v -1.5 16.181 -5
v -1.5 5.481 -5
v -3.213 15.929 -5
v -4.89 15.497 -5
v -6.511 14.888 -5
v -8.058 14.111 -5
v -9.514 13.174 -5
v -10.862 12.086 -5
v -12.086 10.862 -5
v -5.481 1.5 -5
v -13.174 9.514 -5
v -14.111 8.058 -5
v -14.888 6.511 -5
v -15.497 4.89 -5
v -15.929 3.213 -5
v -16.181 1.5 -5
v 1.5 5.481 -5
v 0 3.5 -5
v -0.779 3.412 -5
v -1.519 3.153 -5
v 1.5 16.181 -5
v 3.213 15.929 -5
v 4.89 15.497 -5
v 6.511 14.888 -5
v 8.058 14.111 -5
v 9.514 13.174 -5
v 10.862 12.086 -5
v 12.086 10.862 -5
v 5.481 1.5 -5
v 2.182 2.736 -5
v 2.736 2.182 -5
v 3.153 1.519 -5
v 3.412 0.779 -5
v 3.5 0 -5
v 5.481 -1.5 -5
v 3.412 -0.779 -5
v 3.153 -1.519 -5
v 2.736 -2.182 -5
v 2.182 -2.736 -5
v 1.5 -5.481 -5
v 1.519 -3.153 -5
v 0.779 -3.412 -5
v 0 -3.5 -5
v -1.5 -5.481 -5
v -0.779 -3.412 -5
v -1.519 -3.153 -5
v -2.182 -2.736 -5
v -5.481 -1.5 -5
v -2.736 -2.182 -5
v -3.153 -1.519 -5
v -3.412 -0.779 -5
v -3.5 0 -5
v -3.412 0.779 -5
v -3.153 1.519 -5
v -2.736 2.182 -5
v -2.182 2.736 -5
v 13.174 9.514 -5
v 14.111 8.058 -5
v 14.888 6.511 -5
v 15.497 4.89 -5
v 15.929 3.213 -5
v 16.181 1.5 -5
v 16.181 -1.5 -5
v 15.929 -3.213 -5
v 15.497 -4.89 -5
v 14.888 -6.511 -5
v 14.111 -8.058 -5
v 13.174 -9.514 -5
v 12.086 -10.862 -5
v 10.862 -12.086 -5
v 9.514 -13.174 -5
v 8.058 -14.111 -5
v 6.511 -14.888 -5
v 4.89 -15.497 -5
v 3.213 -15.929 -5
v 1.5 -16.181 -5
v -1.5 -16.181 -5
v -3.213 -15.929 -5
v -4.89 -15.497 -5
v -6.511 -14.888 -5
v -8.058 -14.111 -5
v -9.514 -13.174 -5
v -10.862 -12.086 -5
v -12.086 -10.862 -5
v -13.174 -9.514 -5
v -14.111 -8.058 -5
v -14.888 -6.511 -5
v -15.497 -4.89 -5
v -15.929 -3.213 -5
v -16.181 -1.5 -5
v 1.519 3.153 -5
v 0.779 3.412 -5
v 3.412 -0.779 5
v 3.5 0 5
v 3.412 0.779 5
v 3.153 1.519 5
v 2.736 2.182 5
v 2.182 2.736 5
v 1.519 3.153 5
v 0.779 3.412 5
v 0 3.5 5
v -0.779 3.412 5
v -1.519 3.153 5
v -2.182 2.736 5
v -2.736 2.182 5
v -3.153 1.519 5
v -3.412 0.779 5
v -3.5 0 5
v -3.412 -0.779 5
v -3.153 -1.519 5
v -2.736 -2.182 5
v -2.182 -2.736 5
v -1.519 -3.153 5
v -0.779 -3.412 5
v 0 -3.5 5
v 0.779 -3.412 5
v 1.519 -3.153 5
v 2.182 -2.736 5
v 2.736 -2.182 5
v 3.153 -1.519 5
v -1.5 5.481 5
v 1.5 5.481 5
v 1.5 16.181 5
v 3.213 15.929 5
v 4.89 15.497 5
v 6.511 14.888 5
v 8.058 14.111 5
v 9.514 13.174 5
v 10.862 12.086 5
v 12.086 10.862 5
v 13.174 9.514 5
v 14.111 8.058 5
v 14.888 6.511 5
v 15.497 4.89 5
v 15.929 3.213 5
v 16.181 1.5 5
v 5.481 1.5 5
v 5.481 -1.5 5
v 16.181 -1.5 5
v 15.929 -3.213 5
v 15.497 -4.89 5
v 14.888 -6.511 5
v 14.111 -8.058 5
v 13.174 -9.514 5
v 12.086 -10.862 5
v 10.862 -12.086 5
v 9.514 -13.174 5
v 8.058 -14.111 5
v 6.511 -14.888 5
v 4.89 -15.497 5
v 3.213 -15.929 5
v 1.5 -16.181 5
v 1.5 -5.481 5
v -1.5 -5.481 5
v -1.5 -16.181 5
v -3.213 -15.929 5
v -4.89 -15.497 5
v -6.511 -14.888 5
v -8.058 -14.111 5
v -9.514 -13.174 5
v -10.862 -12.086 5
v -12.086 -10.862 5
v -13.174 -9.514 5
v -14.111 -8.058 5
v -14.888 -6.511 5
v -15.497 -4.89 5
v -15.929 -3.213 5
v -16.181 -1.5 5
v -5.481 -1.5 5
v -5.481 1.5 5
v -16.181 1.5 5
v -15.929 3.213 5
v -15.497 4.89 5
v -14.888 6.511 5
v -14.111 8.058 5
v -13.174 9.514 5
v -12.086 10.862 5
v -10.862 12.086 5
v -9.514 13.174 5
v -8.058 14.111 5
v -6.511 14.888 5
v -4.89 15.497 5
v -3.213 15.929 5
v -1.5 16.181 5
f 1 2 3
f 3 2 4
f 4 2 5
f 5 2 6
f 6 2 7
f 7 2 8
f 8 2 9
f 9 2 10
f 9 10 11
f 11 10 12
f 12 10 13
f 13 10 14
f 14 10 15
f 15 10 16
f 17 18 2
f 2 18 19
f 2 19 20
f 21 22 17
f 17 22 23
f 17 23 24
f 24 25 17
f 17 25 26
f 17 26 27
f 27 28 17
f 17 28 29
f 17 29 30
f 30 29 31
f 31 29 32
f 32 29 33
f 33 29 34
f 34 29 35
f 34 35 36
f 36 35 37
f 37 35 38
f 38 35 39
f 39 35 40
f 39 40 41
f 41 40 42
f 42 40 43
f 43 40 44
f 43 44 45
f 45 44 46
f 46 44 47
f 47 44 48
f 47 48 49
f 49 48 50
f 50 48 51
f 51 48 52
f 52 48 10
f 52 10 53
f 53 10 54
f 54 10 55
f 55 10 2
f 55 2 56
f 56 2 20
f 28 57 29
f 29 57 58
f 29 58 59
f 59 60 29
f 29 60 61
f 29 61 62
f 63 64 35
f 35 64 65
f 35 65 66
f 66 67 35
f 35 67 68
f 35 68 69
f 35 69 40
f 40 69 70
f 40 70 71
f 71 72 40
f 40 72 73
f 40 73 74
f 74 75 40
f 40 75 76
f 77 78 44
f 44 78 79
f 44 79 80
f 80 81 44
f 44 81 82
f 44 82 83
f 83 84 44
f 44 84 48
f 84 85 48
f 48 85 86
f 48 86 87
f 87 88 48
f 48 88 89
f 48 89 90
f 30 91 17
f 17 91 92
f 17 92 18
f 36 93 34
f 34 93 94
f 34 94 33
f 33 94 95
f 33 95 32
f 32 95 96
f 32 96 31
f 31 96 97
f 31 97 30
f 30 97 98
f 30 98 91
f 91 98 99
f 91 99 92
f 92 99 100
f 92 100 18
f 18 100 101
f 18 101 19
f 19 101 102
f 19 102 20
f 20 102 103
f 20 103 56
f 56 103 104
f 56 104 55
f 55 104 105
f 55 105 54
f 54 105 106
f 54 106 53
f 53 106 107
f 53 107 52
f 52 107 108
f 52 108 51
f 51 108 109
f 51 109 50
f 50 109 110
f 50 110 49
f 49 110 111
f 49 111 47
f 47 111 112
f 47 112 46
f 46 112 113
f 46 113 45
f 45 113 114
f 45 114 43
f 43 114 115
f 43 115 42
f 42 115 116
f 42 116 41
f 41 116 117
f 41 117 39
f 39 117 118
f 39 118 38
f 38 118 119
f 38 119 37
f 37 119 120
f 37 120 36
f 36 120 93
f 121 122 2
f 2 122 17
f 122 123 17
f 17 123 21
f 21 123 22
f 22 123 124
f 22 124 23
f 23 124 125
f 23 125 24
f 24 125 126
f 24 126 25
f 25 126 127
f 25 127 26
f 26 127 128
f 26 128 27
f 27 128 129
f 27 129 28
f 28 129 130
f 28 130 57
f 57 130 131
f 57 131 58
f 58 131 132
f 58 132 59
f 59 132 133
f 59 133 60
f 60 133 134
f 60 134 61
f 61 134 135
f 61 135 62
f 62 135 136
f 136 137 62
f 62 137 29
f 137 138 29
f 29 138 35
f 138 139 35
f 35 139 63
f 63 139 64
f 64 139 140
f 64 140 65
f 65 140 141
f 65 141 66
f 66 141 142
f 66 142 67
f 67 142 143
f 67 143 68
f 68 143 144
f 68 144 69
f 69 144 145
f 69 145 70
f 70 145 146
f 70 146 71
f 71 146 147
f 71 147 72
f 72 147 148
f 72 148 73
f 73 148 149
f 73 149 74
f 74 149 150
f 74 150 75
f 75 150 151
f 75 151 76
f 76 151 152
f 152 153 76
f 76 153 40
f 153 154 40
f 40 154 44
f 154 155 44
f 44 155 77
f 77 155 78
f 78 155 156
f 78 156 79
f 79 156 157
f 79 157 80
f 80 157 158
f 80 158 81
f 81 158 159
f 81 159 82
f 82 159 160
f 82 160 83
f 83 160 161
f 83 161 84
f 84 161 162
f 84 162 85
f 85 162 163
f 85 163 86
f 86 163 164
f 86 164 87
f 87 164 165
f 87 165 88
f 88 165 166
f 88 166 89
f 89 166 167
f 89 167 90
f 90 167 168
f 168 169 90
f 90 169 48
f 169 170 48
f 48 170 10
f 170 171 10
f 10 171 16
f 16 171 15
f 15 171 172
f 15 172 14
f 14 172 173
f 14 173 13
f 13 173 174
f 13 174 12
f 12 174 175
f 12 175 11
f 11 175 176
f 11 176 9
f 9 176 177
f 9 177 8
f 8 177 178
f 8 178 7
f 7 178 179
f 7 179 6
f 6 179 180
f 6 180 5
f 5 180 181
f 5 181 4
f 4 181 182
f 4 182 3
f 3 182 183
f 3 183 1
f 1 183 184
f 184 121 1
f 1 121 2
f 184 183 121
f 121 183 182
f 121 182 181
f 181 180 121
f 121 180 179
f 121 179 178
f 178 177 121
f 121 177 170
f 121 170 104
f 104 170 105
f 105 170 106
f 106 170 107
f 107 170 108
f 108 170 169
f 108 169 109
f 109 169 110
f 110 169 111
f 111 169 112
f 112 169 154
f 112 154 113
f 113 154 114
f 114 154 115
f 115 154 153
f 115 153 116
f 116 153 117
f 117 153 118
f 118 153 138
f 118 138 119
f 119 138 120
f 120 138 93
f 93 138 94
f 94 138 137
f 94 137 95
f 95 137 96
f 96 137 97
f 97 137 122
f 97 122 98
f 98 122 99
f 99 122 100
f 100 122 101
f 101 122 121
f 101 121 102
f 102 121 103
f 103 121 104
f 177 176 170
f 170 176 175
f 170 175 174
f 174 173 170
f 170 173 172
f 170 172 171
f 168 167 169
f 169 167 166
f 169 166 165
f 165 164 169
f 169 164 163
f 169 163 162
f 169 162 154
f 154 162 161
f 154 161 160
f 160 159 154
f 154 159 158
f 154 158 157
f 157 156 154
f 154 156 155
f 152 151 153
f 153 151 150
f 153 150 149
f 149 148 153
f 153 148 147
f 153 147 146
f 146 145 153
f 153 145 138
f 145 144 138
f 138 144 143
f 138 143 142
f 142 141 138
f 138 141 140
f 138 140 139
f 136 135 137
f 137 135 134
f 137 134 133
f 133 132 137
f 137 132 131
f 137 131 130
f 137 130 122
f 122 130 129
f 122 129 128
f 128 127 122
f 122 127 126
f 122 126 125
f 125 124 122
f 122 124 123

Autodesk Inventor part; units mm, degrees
ref_plane "YZ Plane" through (0, 0, 0) normal (1, 0, 0) x (0, 1, 0)
ref_plane "XZ Plane" through (0, 0, 0) normal (0, 1, 0) x (-1, 0, 0)
ref_plane "XY Plane" through (0, 0, 0) normal (0, 0, 1) x (1, 0, 0)
sketch "Sketch1" plane through (0, 0, 0) normal (0, 0, 1) x (1, 0, 0)
  circle A0 centre (0, 0) radius 16.25
  line L0 (0, 16.25) -> (0, -16.25) construction
  line L1 (-16.25, 0) -> (16.25, 0) construction
  line L2 (-1.5, 16.1806) -> (-1.5, 5.4806)
  line L3 (1.5, 16.1806) -> (1.5, 5.4806)
  line L4 (-1.5, 5.4806) -> (1.5, 5.4806)
  line L5 (-16.1806, 1.5) -> (-5.4806, 1.5)
  line L6 (-5.4806, -1.5) -> (-5.4806, 1.5)
  line L7 (-16.1806, -1.5) -> (-5.4806, -1.5)
  line L8 (-1.5, -16.1806) -> (-1.5, -5.4806)
  line L9 (1.5, -5.4806) -> (-1.5, -5.4806)
  line L10 (1.5, -16.1806) -> (1.5, -5.4806)
  line L11 (16.1806, -1.5) -> (5.4806, -1.5)
  line L12 (5.4806, 1.5) -> (5.4806, -1.5)
  line L13 (16.1806, 1.5) -> (5.4806, 1.5)
  circle A1 centre (0, 0) radius 3.5
  point P0 (0, 5.4806)
  point P1 (-5.4806, 0)
  point P2 (0, -5.4806)
  point P3 (5.4806, 0)
  dimension "d1" = 3
  dimension "d2" = 10.7
  dimension "d5" = 360
  dimension "d7" = 7
  dimension "d12" = 32.5
extrude "Extrusion1" add sketch "Sketch1" along normal mid plane 10 contours L13 L12 L11 A0 L10 L9 L8 L7 L6 L5 L2 L4 L3
properties part number "Rotor"
